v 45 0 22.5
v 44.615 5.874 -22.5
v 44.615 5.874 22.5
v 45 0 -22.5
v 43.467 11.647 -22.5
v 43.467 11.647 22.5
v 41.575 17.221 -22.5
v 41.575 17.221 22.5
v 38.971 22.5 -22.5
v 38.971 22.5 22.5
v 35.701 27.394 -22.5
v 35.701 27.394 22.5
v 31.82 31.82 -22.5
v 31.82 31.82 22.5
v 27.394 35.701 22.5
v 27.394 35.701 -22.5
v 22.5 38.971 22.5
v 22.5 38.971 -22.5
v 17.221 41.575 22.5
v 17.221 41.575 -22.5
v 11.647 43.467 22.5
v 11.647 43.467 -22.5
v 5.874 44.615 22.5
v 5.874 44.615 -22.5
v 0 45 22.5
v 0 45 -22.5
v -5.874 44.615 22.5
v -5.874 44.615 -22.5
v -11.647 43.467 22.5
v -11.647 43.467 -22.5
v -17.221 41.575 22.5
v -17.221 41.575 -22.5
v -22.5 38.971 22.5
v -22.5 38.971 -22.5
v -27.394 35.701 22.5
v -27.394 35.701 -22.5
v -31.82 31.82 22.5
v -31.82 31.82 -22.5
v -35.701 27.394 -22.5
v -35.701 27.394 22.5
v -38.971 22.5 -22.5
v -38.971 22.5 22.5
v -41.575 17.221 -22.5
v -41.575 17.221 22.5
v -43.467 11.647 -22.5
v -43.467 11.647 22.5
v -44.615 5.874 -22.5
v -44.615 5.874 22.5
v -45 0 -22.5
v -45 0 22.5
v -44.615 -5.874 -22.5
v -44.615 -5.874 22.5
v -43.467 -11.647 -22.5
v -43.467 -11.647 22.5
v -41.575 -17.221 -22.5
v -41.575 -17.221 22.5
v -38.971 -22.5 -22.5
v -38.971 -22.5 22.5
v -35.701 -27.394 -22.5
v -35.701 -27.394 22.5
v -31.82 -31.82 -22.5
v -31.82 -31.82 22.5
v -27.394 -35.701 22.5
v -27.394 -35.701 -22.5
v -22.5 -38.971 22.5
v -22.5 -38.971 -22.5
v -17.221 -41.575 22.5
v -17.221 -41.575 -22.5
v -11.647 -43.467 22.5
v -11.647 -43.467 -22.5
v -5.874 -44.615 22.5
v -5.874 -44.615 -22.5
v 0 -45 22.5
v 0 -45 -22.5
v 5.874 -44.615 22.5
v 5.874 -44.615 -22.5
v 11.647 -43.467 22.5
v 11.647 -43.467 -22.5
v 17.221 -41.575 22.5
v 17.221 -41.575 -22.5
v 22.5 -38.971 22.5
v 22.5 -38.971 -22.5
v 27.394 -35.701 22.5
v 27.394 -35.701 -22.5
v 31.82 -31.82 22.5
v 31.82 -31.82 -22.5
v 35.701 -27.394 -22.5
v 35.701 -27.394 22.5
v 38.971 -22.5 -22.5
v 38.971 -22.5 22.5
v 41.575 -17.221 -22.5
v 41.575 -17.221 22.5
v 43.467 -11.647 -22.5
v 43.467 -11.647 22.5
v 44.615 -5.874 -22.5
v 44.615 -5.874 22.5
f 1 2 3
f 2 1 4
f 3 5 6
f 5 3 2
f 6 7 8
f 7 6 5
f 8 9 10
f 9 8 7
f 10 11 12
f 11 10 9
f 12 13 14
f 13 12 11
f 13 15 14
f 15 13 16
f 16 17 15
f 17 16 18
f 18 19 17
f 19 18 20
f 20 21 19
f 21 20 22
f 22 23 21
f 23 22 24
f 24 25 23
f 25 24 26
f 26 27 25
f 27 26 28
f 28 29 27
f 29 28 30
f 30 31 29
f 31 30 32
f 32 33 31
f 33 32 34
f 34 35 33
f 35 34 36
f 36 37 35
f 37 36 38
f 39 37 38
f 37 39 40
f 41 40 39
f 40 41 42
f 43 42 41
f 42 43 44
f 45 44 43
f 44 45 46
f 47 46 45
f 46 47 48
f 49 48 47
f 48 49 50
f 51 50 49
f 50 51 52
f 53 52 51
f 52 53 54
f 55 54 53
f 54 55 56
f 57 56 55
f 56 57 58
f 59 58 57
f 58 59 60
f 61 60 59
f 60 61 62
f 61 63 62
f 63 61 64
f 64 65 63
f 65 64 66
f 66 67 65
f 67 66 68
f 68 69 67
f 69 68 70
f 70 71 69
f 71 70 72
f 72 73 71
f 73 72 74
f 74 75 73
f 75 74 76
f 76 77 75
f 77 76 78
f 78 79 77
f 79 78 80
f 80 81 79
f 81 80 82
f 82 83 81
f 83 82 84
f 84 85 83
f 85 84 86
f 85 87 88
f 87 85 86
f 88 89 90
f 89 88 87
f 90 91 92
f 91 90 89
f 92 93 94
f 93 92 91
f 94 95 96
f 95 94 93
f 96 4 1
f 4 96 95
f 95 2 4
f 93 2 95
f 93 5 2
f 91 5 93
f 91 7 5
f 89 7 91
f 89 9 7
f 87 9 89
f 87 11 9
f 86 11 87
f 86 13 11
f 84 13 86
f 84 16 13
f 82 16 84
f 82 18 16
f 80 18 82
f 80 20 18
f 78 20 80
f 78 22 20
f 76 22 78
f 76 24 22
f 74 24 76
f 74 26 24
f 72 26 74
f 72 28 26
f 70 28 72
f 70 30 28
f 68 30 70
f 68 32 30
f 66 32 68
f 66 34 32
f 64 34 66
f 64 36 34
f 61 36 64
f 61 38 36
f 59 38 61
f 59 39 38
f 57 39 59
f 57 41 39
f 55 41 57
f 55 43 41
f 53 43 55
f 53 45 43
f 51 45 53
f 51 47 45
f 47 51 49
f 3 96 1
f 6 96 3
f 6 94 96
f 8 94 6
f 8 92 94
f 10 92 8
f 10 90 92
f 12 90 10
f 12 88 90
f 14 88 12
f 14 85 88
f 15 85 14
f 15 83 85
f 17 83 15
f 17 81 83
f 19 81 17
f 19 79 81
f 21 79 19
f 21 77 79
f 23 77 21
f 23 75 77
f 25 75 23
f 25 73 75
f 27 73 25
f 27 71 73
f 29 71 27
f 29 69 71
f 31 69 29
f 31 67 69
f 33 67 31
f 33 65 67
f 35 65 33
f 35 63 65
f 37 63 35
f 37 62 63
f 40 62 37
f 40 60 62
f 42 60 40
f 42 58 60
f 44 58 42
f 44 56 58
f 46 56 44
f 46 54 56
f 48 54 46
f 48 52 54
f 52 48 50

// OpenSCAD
// ========================================
// a cylinder with radius 45 mm and height 45 mm
// NeuroCAD canonical IR; dimensions are millimetres
// ========================================
$fn = 48;

cylinder(r=45, h=45, center=true);
